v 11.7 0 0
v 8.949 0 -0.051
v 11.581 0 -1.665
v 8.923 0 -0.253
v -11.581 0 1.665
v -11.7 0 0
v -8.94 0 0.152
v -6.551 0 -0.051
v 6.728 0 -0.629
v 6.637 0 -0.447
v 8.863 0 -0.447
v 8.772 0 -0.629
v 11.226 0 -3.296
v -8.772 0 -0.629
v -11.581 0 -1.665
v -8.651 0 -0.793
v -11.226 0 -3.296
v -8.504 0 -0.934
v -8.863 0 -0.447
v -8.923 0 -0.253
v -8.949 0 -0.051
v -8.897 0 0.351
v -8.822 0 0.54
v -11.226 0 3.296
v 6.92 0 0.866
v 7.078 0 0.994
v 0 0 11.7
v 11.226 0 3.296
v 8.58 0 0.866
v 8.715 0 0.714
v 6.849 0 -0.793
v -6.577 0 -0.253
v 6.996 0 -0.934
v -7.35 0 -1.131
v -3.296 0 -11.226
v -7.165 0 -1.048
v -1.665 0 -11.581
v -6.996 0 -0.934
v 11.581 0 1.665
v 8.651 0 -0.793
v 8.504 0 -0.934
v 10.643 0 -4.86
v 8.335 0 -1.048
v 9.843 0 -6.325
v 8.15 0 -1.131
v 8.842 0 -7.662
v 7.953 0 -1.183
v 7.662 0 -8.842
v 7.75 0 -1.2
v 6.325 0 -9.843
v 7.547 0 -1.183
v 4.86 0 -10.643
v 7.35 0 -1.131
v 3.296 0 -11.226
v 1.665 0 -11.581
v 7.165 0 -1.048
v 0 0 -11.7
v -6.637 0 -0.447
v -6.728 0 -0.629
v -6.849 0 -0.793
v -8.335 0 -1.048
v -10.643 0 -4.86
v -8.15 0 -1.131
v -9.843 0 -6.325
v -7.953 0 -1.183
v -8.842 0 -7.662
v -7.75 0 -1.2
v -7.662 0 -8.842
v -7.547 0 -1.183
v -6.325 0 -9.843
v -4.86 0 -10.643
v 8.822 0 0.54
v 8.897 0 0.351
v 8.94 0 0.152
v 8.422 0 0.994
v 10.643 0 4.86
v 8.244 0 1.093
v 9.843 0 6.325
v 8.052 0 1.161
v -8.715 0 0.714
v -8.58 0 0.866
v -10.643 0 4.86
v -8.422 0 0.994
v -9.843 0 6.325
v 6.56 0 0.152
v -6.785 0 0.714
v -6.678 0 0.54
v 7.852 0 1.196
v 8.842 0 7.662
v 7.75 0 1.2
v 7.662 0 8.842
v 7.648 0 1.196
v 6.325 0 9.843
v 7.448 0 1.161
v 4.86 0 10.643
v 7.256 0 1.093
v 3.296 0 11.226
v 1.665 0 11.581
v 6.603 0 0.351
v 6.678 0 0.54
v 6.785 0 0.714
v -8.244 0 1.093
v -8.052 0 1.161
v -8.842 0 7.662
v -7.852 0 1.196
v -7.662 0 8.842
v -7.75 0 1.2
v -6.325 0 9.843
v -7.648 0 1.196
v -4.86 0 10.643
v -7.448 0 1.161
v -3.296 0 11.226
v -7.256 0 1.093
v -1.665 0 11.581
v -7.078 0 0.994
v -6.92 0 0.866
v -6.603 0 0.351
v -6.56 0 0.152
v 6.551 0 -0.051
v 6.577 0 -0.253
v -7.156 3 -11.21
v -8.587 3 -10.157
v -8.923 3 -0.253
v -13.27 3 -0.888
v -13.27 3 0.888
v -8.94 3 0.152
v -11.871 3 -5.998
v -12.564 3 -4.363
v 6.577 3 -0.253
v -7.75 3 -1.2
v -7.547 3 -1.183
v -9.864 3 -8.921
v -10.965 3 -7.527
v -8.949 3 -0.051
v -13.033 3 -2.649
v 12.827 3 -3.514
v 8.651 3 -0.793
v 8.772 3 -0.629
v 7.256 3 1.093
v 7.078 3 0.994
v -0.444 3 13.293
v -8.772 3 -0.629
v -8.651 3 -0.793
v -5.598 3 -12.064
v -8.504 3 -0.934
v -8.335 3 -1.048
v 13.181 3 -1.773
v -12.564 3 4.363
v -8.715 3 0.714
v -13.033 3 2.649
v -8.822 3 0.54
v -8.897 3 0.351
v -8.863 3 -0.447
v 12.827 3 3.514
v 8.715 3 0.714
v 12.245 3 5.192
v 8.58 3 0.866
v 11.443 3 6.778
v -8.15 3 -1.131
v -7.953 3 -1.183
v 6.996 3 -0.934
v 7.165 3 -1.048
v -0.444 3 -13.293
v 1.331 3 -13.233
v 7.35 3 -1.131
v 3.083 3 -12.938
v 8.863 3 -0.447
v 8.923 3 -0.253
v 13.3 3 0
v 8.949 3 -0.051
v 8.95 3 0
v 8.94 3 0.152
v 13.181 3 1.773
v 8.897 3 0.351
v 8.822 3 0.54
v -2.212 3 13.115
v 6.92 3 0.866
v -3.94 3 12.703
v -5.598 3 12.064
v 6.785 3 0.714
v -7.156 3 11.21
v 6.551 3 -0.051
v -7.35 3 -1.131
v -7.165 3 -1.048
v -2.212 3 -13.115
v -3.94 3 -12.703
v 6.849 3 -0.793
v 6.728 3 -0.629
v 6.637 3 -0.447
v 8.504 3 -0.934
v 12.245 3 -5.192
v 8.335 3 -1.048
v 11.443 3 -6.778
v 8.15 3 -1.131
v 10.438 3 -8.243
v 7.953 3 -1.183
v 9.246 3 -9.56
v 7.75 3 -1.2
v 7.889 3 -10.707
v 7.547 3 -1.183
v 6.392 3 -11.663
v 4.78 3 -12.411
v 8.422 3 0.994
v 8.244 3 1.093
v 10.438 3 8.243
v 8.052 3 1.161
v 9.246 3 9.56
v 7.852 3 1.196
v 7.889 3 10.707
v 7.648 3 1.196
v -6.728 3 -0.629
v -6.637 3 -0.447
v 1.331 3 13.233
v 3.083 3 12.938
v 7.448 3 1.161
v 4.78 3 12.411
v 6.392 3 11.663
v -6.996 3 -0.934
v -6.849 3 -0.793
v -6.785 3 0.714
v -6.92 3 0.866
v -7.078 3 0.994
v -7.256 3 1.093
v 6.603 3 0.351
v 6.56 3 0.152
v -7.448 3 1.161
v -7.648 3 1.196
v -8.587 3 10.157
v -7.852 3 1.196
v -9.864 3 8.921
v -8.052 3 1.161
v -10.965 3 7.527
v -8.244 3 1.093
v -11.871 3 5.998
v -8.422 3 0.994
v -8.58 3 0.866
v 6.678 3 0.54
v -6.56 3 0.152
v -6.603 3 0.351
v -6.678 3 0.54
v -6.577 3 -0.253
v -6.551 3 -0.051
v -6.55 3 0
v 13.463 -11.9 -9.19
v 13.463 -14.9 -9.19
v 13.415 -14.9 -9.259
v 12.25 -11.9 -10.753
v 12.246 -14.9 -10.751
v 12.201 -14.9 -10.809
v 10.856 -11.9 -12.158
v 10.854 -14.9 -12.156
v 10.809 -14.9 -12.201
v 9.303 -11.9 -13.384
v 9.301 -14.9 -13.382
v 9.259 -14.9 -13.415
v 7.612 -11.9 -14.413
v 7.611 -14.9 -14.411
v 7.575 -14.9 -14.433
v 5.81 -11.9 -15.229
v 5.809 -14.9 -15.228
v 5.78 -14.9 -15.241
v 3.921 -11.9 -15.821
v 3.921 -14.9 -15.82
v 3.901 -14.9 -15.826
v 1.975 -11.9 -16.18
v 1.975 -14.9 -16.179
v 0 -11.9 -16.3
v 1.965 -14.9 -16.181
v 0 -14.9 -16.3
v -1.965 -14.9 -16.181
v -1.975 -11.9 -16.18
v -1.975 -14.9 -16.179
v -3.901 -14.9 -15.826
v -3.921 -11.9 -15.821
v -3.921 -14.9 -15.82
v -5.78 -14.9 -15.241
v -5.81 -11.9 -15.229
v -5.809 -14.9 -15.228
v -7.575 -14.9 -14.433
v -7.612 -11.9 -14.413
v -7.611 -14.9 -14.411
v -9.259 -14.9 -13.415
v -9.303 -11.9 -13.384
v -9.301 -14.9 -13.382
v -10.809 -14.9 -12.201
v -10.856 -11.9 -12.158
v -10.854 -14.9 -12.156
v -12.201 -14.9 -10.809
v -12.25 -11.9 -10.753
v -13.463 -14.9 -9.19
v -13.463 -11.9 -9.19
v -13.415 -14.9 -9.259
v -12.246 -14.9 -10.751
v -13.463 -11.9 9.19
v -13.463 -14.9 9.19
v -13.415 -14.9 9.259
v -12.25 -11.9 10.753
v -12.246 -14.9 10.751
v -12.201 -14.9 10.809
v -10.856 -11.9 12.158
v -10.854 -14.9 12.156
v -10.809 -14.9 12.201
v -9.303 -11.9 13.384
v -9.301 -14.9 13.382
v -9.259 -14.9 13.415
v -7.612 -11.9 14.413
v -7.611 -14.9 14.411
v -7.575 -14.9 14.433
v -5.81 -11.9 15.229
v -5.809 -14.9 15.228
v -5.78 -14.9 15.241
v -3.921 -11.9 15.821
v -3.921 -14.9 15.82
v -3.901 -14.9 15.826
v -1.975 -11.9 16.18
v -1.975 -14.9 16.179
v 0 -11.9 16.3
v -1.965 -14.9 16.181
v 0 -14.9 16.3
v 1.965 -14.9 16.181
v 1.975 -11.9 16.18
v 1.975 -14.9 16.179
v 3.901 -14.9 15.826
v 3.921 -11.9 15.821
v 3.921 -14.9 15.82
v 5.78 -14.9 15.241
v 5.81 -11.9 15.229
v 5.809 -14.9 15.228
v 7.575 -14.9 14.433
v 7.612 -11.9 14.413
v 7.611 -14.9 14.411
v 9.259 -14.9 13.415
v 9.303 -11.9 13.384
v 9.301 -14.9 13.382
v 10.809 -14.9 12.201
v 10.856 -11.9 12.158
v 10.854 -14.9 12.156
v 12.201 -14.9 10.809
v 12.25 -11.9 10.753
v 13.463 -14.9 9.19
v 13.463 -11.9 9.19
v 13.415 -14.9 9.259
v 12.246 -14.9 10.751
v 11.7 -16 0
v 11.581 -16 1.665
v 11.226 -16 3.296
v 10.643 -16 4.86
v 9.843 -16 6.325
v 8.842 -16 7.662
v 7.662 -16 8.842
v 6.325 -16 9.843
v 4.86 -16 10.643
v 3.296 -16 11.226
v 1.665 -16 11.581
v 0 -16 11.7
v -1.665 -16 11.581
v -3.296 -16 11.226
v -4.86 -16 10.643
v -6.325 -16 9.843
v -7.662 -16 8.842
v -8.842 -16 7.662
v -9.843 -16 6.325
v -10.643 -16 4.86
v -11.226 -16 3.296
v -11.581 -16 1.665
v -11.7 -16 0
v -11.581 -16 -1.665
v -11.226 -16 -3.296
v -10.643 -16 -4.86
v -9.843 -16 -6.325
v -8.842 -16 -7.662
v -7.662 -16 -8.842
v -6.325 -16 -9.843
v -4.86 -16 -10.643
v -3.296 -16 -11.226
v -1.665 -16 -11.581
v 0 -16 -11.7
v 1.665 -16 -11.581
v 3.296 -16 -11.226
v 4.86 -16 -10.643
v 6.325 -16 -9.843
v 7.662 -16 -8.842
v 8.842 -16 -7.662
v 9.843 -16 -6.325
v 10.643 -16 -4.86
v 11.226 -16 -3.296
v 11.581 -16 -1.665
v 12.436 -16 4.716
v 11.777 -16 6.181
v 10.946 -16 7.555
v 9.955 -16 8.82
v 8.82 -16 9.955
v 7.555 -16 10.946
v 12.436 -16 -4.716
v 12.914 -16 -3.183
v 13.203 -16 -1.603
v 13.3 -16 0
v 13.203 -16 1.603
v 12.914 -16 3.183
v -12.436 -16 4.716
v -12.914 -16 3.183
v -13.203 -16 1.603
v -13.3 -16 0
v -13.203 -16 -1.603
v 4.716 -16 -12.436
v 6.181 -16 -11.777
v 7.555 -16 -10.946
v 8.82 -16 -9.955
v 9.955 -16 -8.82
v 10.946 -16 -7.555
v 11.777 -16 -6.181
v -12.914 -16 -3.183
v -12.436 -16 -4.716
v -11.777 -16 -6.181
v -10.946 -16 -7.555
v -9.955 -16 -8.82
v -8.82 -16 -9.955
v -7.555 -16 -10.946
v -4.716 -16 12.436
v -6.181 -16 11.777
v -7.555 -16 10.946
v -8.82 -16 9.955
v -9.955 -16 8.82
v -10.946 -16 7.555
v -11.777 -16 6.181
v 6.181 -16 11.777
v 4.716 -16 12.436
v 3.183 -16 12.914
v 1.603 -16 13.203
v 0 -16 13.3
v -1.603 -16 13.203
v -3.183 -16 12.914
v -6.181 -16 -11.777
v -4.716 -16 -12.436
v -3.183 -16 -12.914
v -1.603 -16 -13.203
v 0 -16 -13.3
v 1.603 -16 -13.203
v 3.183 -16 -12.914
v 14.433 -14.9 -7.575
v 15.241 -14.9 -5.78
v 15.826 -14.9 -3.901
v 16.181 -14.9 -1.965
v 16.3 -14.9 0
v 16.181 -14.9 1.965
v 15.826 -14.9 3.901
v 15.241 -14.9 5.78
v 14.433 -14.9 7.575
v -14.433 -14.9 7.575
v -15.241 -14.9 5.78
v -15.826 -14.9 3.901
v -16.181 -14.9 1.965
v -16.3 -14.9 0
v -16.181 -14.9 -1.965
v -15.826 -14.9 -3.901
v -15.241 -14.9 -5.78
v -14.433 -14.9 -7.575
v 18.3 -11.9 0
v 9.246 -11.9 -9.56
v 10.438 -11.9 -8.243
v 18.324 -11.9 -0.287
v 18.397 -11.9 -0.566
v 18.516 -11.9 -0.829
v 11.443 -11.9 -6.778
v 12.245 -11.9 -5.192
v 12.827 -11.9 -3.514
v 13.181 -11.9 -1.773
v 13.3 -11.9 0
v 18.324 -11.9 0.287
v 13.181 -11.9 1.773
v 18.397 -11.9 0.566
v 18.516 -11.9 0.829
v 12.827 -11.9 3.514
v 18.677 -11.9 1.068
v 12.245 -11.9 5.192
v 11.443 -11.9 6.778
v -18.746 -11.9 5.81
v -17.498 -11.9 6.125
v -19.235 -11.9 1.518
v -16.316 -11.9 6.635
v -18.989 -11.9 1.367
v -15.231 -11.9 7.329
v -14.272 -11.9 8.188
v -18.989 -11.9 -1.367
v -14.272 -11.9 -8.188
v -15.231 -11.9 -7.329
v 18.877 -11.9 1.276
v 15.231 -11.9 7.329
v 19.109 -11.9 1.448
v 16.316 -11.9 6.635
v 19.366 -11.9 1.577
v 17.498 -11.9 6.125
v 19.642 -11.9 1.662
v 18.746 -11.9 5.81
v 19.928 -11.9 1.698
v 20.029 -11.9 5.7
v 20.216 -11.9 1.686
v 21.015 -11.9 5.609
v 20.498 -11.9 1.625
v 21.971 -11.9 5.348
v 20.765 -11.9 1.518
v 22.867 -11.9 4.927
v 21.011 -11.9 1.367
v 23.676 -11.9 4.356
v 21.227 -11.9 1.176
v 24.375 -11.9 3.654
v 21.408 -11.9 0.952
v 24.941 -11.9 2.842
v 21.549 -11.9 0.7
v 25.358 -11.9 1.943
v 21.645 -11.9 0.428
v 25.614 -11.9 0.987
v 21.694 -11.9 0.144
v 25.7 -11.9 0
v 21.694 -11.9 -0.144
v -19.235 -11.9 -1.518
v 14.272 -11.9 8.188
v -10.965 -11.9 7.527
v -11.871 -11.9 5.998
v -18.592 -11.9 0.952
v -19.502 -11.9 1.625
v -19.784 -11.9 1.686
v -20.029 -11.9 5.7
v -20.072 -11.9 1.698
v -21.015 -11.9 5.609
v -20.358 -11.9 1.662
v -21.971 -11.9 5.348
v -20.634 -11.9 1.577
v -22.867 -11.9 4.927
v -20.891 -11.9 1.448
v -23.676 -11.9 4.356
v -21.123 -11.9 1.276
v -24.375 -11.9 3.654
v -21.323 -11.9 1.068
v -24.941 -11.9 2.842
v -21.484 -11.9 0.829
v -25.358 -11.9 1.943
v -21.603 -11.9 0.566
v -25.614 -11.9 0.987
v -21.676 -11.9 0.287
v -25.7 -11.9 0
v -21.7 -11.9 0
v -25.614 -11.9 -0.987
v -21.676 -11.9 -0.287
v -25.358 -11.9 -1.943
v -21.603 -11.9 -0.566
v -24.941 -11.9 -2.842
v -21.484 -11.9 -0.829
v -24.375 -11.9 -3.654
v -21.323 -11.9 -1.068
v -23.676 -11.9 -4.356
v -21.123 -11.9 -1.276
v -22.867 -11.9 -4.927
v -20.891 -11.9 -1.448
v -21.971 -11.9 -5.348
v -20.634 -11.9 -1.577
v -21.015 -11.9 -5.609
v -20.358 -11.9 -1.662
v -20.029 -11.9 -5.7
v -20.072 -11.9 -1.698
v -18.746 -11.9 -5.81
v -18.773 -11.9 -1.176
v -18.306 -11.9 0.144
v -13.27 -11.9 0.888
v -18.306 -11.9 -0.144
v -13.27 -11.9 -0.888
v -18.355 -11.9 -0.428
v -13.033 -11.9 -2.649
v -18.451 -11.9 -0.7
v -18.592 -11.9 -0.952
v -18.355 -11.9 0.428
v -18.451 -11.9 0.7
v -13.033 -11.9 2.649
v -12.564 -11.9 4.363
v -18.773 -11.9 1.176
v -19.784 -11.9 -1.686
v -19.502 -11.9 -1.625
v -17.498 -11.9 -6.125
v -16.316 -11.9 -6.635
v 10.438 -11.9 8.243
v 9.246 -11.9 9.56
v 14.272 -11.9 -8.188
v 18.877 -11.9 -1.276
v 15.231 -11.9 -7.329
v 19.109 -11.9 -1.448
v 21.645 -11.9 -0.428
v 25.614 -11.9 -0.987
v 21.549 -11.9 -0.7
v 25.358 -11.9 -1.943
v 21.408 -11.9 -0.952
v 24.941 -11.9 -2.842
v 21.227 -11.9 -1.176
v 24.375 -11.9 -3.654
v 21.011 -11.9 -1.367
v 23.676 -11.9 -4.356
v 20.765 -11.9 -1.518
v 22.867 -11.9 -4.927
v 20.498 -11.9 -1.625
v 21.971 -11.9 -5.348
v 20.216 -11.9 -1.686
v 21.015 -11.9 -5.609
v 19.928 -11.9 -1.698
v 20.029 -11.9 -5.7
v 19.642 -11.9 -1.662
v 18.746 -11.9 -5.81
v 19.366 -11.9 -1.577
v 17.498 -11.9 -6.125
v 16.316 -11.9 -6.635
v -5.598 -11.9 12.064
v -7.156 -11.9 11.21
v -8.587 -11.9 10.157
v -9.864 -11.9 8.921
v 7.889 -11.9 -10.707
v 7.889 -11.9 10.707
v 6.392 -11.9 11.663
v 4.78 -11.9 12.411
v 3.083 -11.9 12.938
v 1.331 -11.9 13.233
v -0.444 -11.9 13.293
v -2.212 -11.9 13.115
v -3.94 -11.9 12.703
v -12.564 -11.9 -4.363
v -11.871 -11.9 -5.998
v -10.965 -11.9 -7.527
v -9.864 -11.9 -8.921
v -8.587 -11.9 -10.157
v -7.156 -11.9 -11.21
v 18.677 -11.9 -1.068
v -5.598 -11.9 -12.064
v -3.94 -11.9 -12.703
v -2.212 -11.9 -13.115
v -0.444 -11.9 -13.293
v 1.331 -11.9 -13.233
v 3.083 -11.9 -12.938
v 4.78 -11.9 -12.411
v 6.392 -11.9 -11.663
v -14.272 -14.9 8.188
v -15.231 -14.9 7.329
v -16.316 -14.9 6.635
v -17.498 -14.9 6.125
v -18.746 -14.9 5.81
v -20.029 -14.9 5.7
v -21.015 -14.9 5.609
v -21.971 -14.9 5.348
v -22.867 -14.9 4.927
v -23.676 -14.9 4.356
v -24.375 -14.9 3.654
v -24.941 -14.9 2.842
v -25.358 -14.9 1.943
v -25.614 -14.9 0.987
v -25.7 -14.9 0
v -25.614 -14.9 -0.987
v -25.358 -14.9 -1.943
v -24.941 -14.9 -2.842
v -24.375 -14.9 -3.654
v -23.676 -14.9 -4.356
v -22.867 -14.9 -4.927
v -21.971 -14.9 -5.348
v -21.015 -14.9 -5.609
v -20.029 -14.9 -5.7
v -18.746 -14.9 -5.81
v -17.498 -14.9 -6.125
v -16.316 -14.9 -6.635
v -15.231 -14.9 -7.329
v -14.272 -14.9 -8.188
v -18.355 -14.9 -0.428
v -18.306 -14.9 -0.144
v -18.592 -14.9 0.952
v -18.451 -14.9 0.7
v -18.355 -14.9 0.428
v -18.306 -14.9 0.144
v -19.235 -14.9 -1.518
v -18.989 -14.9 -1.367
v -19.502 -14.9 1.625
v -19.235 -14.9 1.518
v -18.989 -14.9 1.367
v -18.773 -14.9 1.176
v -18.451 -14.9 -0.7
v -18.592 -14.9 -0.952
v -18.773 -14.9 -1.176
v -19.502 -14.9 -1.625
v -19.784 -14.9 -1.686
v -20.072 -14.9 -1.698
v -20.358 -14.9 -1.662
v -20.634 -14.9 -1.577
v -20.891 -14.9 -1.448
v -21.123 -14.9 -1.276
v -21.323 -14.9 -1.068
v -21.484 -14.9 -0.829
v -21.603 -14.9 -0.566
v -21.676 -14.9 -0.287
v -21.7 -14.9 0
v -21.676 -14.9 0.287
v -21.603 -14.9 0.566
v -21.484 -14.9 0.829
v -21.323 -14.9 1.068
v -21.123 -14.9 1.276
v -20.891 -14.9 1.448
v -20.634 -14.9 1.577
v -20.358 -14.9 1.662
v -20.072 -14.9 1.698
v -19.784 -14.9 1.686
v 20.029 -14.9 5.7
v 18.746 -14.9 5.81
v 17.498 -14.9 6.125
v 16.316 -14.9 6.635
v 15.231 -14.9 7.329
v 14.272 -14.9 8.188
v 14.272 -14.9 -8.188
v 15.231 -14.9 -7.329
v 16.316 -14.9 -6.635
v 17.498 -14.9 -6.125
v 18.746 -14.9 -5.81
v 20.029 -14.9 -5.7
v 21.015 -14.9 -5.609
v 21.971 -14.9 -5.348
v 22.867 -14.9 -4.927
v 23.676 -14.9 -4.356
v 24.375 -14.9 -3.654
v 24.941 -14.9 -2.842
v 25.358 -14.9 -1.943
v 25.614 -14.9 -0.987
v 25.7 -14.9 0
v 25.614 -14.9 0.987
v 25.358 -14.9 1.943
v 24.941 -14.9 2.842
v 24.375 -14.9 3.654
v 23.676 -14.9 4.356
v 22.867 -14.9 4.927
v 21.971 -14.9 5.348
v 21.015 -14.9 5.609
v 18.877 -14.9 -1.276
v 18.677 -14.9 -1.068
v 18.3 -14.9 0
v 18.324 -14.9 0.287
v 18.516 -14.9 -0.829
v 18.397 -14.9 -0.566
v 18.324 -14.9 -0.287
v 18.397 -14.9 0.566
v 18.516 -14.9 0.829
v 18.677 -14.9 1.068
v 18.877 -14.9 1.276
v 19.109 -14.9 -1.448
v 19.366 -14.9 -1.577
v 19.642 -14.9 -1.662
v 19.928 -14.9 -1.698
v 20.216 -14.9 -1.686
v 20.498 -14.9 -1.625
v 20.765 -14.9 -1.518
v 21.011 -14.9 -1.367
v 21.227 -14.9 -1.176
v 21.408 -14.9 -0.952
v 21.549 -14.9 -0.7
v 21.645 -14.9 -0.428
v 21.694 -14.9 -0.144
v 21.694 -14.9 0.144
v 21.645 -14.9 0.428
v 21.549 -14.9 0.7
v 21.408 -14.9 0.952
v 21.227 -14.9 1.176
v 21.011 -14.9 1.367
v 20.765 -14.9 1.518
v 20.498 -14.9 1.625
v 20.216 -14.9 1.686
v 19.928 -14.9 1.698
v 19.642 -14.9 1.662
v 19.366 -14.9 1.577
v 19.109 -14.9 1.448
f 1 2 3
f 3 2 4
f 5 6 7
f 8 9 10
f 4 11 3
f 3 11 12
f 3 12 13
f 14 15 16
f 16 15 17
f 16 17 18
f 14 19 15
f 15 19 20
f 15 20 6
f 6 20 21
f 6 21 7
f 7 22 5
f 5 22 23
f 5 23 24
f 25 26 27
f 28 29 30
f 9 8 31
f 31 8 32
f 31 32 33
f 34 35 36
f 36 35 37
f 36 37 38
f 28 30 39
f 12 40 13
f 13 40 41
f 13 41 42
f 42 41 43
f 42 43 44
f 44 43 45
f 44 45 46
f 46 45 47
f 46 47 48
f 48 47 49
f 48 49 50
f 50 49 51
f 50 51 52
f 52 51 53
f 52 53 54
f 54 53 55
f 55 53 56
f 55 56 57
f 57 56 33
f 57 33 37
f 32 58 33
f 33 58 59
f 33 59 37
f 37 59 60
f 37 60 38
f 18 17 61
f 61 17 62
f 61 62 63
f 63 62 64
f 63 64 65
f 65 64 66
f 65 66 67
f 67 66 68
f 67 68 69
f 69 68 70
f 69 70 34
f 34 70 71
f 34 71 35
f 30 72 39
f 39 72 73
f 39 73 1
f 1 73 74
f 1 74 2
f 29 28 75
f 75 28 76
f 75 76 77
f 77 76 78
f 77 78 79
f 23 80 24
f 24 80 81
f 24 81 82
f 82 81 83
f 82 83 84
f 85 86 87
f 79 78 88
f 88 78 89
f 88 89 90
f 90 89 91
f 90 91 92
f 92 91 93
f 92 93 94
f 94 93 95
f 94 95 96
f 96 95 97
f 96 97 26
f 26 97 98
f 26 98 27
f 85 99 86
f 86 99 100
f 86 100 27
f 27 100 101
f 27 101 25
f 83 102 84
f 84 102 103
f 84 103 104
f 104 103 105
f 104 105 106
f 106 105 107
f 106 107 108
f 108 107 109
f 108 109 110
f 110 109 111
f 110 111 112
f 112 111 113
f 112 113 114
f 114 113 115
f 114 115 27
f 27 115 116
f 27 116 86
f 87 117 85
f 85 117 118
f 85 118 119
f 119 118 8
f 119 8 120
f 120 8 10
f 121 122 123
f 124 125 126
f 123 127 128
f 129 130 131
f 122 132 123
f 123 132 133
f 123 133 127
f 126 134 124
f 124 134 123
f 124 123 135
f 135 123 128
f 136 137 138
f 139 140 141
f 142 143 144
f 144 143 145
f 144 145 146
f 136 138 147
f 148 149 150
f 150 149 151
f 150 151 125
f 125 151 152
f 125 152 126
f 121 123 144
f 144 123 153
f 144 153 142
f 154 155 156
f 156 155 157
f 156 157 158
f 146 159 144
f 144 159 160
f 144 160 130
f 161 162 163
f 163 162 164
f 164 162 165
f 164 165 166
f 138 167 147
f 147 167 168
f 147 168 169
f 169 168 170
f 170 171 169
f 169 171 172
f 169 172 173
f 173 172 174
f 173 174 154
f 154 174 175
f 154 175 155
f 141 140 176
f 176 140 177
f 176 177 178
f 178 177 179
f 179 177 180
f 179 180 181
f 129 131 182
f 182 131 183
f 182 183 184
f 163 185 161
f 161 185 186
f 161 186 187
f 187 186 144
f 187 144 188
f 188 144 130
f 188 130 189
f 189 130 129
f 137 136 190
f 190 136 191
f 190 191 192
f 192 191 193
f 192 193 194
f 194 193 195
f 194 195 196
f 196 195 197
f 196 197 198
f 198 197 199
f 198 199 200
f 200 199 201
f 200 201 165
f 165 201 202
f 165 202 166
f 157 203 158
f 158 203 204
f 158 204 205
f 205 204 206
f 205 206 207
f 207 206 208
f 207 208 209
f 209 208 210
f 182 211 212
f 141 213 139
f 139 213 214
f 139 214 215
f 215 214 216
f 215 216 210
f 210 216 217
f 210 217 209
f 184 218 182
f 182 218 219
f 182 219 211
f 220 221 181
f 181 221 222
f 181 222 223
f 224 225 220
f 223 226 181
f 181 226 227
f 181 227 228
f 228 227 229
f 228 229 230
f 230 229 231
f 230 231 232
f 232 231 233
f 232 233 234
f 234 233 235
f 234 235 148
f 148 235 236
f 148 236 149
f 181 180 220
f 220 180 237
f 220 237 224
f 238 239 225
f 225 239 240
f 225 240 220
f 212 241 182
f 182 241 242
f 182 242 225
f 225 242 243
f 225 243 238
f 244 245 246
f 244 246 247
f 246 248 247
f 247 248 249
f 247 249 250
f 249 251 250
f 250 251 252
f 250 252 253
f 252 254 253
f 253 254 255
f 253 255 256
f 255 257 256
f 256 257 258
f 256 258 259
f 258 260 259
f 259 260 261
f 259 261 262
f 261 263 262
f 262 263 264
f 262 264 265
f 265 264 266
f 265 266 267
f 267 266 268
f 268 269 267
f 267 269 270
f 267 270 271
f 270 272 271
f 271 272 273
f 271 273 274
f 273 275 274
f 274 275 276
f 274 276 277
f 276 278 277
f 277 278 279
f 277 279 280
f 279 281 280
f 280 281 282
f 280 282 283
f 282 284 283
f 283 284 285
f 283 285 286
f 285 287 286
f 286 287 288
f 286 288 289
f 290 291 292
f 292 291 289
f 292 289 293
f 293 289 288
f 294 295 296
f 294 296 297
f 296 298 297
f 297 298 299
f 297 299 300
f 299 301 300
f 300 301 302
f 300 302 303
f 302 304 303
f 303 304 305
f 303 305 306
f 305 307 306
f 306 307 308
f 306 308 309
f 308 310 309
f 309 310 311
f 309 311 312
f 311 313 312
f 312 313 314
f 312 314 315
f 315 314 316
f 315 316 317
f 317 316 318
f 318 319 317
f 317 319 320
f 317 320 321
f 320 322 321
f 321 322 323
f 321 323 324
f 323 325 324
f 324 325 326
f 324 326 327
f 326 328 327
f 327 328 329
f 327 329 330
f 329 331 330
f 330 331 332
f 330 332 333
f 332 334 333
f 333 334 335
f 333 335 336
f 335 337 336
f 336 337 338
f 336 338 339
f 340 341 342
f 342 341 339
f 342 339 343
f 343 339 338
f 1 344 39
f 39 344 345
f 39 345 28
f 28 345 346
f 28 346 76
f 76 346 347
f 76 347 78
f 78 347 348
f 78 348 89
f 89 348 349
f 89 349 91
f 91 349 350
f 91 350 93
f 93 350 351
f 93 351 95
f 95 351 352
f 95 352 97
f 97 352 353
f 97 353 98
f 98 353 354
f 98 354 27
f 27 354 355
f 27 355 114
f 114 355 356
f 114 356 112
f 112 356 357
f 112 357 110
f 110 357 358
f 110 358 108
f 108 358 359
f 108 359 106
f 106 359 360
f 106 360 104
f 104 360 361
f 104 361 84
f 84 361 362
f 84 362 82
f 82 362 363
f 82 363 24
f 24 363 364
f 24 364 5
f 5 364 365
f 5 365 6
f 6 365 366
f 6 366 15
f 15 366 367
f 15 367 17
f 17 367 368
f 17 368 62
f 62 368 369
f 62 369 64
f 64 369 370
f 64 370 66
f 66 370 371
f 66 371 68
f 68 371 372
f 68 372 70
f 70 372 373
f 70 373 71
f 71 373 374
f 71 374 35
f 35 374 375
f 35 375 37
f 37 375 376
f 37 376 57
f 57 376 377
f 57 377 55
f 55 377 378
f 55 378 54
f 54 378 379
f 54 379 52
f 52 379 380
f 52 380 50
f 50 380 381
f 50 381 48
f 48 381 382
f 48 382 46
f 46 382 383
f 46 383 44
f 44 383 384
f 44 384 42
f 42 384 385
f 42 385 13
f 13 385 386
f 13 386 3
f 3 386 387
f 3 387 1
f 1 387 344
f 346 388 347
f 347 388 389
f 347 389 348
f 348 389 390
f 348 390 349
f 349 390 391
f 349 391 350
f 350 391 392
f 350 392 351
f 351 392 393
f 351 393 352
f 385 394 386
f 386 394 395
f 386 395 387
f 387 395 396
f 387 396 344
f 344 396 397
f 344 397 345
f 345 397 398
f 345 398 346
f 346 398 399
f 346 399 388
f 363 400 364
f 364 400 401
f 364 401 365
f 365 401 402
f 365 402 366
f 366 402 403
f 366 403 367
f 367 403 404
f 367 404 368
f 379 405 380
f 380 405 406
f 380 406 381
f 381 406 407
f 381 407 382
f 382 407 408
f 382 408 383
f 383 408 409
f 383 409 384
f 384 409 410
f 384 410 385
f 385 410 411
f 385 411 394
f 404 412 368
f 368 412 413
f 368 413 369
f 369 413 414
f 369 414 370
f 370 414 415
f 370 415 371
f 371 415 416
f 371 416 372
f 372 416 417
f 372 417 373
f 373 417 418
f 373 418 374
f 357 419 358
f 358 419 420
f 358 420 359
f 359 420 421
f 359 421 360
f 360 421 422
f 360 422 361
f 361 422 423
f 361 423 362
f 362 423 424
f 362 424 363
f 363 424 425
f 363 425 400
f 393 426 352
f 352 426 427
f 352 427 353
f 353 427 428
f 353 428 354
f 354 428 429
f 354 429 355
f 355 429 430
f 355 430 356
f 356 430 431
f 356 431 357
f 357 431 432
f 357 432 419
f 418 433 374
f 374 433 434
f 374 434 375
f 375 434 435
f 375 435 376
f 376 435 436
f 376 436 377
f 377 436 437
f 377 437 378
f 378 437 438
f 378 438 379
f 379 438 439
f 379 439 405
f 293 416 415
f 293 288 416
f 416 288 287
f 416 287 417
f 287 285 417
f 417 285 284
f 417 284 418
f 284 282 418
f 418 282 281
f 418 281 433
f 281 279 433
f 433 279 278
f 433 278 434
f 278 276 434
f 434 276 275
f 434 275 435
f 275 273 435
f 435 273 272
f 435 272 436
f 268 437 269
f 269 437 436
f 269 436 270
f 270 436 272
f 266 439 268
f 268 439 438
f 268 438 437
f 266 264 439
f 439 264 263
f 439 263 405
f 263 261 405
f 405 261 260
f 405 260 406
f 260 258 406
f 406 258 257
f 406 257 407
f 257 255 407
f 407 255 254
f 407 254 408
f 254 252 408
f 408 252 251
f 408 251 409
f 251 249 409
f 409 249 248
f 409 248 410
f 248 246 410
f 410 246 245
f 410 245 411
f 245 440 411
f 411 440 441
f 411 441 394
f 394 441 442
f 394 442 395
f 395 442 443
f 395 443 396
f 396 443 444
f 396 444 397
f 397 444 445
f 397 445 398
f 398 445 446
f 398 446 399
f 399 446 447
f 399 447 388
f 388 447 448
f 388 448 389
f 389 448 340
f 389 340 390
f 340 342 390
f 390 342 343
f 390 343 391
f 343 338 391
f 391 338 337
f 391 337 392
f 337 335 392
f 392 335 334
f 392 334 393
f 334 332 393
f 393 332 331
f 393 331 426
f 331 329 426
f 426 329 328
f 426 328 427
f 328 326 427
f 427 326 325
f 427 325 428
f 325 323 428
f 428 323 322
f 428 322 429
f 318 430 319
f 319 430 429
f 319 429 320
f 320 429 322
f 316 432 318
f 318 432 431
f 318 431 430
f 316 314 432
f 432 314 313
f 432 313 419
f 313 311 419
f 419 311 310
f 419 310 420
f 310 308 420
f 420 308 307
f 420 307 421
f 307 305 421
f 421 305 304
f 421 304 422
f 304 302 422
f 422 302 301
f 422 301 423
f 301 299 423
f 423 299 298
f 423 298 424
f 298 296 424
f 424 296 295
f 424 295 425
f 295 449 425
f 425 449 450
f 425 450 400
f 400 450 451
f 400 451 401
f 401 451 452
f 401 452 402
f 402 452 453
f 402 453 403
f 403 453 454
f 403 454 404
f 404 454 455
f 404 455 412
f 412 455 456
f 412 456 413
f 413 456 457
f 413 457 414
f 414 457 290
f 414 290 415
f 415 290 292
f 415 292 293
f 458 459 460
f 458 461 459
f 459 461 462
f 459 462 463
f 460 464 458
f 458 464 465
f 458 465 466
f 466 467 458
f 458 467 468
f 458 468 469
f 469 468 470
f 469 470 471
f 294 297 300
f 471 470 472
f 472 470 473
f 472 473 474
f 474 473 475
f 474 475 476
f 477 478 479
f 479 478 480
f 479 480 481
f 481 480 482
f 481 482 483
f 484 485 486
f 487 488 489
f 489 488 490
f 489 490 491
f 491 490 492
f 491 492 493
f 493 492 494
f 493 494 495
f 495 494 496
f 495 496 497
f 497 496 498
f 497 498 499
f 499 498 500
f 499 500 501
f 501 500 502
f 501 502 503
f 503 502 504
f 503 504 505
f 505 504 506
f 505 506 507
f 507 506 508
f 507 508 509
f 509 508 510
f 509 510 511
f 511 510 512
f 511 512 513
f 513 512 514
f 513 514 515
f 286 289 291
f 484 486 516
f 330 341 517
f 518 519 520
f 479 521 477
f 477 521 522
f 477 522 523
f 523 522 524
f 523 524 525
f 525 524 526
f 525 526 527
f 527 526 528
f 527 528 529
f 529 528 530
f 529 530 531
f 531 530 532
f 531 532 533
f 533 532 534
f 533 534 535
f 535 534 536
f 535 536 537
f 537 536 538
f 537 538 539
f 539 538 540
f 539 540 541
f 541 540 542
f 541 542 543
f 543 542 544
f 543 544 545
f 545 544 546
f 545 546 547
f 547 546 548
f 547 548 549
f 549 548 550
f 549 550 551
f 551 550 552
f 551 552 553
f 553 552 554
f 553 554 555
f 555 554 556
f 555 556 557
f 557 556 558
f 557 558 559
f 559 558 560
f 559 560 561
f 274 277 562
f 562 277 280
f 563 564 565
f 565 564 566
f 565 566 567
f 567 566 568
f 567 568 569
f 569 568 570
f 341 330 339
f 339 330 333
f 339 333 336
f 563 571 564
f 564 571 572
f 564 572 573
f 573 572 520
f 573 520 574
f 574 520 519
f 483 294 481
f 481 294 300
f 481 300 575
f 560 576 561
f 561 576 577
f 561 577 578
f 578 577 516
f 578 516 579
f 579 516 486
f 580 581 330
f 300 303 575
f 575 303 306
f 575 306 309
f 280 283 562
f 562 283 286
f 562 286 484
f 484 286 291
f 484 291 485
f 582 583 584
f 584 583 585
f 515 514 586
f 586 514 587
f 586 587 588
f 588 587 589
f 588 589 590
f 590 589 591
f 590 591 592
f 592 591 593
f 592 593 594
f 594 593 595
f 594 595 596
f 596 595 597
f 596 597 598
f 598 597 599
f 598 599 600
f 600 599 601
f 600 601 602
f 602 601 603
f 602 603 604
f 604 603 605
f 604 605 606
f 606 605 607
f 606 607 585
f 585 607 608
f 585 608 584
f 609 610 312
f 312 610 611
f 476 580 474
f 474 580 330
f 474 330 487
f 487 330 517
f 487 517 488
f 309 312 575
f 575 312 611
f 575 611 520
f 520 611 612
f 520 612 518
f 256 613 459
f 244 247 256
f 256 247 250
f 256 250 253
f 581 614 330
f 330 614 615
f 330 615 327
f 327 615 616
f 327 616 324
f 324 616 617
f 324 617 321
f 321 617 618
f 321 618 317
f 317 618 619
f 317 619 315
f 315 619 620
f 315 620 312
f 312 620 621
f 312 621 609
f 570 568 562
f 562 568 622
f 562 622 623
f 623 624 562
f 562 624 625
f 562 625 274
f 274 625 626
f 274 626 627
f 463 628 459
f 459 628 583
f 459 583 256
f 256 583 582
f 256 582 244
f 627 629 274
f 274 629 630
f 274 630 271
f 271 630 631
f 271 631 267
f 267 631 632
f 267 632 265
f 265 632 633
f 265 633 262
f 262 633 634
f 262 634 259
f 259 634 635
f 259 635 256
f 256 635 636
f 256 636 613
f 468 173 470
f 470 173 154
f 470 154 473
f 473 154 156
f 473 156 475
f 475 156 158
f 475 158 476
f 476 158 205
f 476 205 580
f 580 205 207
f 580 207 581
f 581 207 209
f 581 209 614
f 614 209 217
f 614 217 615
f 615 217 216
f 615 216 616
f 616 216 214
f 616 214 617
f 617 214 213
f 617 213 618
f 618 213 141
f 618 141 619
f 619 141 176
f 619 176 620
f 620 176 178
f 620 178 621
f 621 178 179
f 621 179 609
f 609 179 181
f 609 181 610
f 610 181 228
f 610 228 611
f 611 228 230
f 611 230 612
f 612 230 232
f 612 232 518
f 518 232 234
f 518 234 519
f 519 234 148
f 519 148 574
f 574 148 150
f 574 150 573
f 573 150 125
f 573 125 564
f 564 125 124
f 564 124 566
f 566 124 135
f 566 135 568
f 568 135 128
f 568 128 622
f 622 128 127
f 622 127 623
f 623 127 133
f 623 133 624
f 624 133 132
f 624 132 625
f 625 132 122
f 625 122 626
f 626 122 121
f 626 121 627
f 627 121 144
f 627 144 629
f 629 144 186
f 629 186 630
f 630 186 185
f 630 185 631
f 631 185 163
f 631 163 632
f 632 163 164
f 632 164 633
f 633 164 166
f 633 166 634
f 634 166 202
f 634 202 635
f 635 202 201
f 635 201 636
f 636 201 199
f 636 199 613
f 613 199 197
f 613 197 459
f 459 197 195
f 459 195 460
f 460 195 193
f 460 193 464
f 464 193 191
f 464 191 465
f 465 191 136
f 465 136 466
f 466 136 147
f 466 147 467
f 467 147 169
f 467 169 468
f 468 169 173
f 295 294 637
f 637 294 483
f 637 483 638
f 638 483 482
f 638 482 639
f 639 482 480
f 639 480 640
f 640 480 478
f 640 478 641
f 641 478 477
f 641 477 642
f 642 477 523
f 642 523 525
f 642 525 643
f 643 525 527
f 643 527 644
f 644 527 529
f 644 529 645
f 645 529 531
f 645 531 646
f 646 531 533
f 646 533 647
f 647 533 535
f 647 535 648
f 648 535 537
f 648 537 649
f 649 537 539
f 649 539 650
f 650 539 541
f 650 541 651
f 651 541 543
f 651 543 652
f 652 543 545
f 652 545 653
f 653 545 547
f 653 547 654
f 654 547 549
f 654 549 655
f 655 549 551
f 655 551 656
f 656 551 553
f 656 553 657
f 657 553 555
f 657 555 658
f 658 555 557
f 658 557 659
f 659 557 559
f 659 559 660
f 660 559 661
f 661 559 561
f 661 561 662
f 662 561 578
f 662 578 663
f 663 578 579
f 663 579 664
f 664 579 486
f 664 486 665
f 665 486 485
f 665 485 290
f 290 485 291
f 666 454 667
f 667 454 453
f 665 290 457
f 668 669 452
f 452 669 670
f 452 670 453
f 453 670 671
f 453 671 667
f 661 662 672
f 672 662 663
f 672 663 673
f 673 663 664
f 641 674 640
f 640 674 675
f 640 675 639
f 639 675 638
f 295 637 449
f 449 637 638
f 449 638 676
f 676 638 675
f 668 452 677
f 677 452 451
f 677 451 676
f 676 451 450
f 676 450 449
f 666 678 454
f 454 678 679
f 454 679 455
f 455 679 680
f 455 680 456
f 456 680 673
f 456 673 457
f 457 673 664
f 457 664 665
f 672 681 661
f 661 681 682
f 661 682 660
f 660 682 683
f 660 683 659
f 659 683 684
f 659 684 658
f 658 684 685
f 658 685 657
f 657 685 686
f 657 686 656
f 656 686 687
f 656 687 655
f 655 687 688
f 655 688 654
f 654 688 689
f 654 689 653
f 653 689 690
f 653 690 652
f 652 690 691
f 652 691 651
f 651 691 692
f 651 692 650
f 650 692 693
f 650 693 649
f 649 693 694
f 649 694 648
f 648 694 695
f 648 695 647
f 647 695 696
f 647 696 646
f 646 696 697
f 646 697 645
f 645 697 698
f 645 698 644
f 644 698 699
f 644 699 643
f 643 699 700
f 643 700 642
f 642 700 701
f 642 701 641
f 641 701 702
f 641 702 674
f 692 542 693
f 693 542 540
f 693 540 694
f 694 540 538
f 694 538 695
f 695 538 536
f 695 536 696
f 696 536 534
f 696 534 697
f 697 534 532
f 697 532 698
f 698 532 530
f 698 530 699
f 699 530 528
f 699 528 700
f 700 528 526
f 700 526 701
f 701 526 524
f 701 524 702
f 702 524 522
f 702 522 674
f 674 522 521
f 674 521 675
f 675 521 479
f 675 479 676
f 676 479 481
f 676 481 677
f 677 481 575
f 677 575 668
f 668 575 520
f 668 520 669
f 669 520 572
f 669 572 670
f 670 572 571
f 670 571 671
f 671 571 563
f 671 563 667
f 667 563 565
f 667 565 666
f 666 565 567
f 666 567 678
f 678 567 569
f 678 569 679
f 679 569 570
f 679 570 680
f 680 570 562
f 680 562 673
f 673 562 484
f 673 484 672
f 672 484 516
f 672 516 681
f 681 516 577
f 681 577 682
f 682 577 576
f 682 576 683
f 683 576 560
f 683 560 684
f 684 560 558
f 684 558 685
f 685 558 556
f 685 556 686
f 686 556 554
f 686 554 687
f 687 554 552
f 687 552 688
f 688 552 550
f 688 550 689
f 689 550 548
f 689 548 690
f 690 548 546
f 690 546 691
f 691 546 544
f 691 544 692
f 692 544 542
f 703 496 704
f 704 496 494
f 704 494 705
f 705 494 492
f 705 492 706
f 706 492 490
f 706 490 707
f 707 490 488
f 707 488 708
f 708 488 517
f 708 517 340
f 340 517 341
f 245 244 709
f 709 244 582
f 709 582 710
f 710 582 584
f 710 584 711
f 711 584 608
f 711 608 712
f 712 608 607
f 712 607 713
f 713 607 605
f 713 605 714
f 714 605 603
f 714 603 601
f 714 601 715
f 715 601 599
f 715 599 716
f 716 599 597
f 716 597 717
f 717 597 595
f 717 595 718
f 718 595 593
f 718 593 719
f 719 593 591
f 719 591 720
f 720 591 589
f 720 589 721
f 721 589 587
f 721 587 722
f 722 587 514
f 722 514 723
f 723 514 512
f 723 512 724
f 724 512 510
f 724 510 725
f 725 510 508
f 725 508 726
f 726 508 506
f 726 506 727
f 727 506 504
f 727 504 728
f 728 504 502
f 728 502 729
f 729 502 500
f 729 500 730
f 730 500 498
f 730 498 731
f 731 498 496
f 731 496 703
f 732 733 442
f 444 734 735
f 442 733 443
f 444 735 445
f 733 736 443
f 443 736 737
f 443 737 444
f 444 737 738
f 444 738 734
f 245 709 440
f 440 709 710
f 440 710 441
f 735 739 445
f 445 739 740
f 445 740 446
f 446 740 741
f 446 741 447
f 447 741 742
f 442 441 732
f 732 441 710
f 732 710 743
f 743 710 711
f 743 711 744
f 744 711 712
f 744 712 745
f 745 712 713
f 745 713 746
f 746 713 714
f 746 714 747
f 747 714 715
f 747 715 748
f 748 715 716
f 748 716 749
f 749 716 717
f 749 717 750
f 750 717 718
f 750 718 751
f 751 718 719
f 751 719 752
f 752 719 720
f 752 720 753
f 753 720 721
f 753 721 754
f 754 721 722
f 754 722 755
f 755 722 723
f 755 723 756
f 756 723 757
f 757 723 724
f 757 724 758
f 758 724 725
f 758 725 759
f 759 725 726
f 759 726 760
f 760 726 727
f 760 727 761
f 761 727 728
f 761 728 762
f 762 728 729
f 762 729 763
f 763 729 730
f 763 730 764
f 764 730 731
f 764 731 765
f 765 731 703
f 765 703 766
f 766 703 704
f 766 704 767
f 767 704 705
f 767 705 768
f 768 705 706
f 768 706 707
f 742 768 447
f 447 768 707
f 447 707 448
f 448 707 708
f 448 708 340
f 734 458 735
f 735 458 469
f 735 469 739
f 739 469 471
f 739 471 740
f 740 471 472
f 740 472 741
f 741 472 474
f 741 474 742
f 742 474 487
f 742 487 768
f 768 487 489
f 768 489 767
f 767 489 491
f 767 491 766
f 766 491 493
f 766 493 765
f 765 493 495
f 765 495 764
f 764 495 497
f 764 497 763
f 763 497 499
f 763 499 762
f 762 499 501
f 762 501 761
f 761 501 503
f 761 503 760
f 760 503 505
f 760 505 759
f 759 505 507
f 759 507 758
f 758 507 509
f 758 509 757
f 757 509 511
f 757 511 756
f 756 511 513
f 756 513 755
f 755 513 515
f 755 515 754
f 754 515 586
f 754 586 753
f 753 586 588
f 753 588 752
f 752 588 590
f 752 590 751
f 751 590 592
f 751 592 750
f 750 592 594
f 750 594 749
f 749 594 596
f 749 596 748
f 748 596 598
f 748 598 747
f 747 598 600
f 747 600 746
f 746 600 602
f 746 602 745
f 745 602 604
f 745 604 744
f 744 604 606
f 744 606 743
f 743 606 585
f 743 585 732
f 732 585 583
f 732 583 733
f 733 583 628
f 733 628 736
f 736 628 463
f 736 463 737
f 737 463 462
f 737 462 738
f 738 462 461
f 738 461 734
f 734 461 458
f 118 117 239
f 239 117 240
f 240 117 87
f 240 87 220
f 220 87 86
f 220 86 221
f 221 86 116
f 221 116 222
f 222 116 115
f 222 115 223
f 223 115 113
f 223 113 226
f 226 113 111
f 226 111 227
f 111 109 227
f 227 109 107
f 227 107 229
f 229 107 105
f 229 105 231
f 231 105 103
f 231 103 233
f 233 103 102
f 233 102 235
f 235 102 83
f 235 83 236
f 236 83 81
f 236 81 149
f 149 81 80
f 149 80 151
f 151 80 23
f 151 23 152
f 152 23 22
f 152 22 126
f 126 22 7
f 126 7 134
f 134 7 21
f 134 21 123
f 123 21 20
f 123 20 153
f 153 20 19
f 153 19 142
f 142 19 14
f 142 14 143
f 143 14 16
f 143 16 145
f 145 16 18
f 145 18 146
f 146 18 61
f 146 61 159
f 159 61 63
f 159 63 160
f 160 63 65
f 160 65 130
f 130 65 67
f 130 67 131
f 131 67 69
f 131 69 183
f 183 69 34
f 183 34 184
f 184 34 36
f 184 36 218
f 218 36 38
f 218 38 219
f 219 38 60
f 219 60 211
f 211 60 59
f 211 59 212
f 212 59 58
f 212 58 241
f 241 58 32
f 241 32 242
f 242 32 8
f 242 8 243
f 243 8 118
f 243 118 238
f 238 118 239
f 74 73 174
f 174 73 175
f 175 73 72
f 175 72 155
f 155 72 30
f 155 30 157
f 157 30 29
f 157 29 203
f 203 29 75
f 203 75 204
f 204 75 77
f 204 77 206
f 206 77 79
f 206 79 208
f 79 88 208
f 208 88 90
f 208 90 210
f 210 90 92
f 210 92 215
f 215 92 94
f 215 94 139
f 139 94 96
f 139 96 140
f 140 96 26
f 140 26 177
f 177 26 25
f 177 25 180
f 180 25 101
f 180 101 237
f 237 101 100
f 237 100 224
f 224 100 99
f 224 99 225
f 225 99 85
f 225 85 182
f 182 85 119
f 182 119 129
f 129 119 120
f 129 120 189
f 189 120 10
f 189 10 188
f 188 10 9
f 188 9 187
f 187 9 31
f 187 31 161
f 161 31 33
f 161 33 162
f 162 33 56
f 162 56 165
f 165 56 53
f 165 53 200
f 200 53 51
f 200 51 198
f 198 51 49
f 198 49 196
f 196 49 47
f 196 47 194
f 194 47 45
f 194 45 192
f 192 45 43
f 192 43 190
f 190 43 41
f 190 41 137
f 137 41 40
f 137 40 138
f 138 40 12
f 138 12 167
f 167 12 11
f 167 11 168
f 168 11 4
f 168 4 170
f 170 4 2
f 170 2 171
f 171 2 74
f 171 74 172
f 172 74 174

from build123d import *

# Parameters (mm, degrees)
SKETCH3_R           = 1.7
BOSS_EXTRUDE4_DEPTH = 3
CUT_EXTRUDE3_REACH  = 5
SKETCH4_R           = 1.2


with BuildPart() as part:
    # Sketch1 → Revolve1 (revolve)
    with BuildSketch(Plane.XY):
        Polygon((11.7, 0), (0, 0), (0, 3), (13.3, 3), (13.3, -16), (11.7, -16), align=None)
        Polygon((16.3, -11.9), (13.3, -11.9), (13.3, -16), (16.3, -14.9), align=None)
    revolve(axis=Axis((0, -272.323852837, 0), (0, 1, 0)))

    # Sketch3 → Boss-Extrude4 (add)
    with BuildSketch(Plane(origin=(0, -11.9, 0), x_dir=(1, 0, 0), z_dir=(0, 1, 0))):
        with BuildLine():
            ThreePointArc((-20.029124088, 5.699925595), (-25.7, 0), (-20.029124088, -5.699925595))
            ThreePointArc((-20.029124088, -5.699925595), (-16.315754318, -6.635428811), (-13.462592593, -9.189591976))
            ThreePointArc((-13.462592593, -9.189591976), (-16.3, 0), (-13.462592593, 9.189591976))
            ThreePointArc((-13.462592593, 9.189591976), (-16.315754318, 6.635428811), (-20.029124088, 5.699925595))
        make_face()
        with Locations((-20, 0)):
            Circle(SKETCH3_R, mode=Mode.SUBTRACT)
        with BuildLine():
            ThreePointArc((13.462592593, -9.189591976), (16.3, 0), (13.462592593, 9.189591976))
            ThreePointArc((13.462592593, 9.189591976), (16.315754318, 6.635428811), (20.029124088, 5.699925595))
            ThreePointArc((20.029124088, 5.699925595), (25.7, 0), (20.029124088, -5.699925595))
            ThreePointArc((20.029124088, -5.699925595), (16.315754318, -6.635428811), (13.462592593, -9.189591976))
        make_face()
        with Locations((20, 0)):
            Circle(SKETCH3_R, mode=Mode.SUBTRACT)
    extrude(amount=-BOSS_EXTRUDE4_DEPTH)

    # Sketch4 → Cut-Extrude3 (cut, up to next)
    with BuildSketch(Plane(origin=(0, 0, 0), x_dir=(1, 0, 0), z_dir=(0, 1, 0)), mode=Mode.PRIVATE) as cut_extrude3_sk1:
        with Locations((7.75, 0)):
            Circle(SKETCH4_R)
    cut_extrude3_tool1 = extrude(cut_extrude3_sk1.sketch, amount=CUT_EXTRUDE3_REACH, mode=Mode.PRIVATE) & part.part
    add(cut_extrude3_tool1.solids().sort_by_distance((7.75, 0, 0))[0], mode=Mode.SUBTRACT)
    # Sketch4 → Cut-Extrude3 (cut, up to next)
    with BuildSketch(Plane(origin=(0, 0, 0), x_dir=(1, 0, 0), z_dir=(0, 1, 0)), mode=Mode.PRIVATE) as cut_extrude3_sk2:
        with Locations((-7.75, 0)):
            Circle(SKETCH4_R)
    cut_extrude3_tool2 = extrude(cut_extrude3_sk2.sketch, amount=CUT_EXTRUDE3_REACH, mode=Mode.PRIVATE) & part.part
    add(cut_extrude3_tool2.solids().sort_by_distance((-7.75, 0, 0))[0], mode=Mode.SUBTRACT)


solid = part.part
